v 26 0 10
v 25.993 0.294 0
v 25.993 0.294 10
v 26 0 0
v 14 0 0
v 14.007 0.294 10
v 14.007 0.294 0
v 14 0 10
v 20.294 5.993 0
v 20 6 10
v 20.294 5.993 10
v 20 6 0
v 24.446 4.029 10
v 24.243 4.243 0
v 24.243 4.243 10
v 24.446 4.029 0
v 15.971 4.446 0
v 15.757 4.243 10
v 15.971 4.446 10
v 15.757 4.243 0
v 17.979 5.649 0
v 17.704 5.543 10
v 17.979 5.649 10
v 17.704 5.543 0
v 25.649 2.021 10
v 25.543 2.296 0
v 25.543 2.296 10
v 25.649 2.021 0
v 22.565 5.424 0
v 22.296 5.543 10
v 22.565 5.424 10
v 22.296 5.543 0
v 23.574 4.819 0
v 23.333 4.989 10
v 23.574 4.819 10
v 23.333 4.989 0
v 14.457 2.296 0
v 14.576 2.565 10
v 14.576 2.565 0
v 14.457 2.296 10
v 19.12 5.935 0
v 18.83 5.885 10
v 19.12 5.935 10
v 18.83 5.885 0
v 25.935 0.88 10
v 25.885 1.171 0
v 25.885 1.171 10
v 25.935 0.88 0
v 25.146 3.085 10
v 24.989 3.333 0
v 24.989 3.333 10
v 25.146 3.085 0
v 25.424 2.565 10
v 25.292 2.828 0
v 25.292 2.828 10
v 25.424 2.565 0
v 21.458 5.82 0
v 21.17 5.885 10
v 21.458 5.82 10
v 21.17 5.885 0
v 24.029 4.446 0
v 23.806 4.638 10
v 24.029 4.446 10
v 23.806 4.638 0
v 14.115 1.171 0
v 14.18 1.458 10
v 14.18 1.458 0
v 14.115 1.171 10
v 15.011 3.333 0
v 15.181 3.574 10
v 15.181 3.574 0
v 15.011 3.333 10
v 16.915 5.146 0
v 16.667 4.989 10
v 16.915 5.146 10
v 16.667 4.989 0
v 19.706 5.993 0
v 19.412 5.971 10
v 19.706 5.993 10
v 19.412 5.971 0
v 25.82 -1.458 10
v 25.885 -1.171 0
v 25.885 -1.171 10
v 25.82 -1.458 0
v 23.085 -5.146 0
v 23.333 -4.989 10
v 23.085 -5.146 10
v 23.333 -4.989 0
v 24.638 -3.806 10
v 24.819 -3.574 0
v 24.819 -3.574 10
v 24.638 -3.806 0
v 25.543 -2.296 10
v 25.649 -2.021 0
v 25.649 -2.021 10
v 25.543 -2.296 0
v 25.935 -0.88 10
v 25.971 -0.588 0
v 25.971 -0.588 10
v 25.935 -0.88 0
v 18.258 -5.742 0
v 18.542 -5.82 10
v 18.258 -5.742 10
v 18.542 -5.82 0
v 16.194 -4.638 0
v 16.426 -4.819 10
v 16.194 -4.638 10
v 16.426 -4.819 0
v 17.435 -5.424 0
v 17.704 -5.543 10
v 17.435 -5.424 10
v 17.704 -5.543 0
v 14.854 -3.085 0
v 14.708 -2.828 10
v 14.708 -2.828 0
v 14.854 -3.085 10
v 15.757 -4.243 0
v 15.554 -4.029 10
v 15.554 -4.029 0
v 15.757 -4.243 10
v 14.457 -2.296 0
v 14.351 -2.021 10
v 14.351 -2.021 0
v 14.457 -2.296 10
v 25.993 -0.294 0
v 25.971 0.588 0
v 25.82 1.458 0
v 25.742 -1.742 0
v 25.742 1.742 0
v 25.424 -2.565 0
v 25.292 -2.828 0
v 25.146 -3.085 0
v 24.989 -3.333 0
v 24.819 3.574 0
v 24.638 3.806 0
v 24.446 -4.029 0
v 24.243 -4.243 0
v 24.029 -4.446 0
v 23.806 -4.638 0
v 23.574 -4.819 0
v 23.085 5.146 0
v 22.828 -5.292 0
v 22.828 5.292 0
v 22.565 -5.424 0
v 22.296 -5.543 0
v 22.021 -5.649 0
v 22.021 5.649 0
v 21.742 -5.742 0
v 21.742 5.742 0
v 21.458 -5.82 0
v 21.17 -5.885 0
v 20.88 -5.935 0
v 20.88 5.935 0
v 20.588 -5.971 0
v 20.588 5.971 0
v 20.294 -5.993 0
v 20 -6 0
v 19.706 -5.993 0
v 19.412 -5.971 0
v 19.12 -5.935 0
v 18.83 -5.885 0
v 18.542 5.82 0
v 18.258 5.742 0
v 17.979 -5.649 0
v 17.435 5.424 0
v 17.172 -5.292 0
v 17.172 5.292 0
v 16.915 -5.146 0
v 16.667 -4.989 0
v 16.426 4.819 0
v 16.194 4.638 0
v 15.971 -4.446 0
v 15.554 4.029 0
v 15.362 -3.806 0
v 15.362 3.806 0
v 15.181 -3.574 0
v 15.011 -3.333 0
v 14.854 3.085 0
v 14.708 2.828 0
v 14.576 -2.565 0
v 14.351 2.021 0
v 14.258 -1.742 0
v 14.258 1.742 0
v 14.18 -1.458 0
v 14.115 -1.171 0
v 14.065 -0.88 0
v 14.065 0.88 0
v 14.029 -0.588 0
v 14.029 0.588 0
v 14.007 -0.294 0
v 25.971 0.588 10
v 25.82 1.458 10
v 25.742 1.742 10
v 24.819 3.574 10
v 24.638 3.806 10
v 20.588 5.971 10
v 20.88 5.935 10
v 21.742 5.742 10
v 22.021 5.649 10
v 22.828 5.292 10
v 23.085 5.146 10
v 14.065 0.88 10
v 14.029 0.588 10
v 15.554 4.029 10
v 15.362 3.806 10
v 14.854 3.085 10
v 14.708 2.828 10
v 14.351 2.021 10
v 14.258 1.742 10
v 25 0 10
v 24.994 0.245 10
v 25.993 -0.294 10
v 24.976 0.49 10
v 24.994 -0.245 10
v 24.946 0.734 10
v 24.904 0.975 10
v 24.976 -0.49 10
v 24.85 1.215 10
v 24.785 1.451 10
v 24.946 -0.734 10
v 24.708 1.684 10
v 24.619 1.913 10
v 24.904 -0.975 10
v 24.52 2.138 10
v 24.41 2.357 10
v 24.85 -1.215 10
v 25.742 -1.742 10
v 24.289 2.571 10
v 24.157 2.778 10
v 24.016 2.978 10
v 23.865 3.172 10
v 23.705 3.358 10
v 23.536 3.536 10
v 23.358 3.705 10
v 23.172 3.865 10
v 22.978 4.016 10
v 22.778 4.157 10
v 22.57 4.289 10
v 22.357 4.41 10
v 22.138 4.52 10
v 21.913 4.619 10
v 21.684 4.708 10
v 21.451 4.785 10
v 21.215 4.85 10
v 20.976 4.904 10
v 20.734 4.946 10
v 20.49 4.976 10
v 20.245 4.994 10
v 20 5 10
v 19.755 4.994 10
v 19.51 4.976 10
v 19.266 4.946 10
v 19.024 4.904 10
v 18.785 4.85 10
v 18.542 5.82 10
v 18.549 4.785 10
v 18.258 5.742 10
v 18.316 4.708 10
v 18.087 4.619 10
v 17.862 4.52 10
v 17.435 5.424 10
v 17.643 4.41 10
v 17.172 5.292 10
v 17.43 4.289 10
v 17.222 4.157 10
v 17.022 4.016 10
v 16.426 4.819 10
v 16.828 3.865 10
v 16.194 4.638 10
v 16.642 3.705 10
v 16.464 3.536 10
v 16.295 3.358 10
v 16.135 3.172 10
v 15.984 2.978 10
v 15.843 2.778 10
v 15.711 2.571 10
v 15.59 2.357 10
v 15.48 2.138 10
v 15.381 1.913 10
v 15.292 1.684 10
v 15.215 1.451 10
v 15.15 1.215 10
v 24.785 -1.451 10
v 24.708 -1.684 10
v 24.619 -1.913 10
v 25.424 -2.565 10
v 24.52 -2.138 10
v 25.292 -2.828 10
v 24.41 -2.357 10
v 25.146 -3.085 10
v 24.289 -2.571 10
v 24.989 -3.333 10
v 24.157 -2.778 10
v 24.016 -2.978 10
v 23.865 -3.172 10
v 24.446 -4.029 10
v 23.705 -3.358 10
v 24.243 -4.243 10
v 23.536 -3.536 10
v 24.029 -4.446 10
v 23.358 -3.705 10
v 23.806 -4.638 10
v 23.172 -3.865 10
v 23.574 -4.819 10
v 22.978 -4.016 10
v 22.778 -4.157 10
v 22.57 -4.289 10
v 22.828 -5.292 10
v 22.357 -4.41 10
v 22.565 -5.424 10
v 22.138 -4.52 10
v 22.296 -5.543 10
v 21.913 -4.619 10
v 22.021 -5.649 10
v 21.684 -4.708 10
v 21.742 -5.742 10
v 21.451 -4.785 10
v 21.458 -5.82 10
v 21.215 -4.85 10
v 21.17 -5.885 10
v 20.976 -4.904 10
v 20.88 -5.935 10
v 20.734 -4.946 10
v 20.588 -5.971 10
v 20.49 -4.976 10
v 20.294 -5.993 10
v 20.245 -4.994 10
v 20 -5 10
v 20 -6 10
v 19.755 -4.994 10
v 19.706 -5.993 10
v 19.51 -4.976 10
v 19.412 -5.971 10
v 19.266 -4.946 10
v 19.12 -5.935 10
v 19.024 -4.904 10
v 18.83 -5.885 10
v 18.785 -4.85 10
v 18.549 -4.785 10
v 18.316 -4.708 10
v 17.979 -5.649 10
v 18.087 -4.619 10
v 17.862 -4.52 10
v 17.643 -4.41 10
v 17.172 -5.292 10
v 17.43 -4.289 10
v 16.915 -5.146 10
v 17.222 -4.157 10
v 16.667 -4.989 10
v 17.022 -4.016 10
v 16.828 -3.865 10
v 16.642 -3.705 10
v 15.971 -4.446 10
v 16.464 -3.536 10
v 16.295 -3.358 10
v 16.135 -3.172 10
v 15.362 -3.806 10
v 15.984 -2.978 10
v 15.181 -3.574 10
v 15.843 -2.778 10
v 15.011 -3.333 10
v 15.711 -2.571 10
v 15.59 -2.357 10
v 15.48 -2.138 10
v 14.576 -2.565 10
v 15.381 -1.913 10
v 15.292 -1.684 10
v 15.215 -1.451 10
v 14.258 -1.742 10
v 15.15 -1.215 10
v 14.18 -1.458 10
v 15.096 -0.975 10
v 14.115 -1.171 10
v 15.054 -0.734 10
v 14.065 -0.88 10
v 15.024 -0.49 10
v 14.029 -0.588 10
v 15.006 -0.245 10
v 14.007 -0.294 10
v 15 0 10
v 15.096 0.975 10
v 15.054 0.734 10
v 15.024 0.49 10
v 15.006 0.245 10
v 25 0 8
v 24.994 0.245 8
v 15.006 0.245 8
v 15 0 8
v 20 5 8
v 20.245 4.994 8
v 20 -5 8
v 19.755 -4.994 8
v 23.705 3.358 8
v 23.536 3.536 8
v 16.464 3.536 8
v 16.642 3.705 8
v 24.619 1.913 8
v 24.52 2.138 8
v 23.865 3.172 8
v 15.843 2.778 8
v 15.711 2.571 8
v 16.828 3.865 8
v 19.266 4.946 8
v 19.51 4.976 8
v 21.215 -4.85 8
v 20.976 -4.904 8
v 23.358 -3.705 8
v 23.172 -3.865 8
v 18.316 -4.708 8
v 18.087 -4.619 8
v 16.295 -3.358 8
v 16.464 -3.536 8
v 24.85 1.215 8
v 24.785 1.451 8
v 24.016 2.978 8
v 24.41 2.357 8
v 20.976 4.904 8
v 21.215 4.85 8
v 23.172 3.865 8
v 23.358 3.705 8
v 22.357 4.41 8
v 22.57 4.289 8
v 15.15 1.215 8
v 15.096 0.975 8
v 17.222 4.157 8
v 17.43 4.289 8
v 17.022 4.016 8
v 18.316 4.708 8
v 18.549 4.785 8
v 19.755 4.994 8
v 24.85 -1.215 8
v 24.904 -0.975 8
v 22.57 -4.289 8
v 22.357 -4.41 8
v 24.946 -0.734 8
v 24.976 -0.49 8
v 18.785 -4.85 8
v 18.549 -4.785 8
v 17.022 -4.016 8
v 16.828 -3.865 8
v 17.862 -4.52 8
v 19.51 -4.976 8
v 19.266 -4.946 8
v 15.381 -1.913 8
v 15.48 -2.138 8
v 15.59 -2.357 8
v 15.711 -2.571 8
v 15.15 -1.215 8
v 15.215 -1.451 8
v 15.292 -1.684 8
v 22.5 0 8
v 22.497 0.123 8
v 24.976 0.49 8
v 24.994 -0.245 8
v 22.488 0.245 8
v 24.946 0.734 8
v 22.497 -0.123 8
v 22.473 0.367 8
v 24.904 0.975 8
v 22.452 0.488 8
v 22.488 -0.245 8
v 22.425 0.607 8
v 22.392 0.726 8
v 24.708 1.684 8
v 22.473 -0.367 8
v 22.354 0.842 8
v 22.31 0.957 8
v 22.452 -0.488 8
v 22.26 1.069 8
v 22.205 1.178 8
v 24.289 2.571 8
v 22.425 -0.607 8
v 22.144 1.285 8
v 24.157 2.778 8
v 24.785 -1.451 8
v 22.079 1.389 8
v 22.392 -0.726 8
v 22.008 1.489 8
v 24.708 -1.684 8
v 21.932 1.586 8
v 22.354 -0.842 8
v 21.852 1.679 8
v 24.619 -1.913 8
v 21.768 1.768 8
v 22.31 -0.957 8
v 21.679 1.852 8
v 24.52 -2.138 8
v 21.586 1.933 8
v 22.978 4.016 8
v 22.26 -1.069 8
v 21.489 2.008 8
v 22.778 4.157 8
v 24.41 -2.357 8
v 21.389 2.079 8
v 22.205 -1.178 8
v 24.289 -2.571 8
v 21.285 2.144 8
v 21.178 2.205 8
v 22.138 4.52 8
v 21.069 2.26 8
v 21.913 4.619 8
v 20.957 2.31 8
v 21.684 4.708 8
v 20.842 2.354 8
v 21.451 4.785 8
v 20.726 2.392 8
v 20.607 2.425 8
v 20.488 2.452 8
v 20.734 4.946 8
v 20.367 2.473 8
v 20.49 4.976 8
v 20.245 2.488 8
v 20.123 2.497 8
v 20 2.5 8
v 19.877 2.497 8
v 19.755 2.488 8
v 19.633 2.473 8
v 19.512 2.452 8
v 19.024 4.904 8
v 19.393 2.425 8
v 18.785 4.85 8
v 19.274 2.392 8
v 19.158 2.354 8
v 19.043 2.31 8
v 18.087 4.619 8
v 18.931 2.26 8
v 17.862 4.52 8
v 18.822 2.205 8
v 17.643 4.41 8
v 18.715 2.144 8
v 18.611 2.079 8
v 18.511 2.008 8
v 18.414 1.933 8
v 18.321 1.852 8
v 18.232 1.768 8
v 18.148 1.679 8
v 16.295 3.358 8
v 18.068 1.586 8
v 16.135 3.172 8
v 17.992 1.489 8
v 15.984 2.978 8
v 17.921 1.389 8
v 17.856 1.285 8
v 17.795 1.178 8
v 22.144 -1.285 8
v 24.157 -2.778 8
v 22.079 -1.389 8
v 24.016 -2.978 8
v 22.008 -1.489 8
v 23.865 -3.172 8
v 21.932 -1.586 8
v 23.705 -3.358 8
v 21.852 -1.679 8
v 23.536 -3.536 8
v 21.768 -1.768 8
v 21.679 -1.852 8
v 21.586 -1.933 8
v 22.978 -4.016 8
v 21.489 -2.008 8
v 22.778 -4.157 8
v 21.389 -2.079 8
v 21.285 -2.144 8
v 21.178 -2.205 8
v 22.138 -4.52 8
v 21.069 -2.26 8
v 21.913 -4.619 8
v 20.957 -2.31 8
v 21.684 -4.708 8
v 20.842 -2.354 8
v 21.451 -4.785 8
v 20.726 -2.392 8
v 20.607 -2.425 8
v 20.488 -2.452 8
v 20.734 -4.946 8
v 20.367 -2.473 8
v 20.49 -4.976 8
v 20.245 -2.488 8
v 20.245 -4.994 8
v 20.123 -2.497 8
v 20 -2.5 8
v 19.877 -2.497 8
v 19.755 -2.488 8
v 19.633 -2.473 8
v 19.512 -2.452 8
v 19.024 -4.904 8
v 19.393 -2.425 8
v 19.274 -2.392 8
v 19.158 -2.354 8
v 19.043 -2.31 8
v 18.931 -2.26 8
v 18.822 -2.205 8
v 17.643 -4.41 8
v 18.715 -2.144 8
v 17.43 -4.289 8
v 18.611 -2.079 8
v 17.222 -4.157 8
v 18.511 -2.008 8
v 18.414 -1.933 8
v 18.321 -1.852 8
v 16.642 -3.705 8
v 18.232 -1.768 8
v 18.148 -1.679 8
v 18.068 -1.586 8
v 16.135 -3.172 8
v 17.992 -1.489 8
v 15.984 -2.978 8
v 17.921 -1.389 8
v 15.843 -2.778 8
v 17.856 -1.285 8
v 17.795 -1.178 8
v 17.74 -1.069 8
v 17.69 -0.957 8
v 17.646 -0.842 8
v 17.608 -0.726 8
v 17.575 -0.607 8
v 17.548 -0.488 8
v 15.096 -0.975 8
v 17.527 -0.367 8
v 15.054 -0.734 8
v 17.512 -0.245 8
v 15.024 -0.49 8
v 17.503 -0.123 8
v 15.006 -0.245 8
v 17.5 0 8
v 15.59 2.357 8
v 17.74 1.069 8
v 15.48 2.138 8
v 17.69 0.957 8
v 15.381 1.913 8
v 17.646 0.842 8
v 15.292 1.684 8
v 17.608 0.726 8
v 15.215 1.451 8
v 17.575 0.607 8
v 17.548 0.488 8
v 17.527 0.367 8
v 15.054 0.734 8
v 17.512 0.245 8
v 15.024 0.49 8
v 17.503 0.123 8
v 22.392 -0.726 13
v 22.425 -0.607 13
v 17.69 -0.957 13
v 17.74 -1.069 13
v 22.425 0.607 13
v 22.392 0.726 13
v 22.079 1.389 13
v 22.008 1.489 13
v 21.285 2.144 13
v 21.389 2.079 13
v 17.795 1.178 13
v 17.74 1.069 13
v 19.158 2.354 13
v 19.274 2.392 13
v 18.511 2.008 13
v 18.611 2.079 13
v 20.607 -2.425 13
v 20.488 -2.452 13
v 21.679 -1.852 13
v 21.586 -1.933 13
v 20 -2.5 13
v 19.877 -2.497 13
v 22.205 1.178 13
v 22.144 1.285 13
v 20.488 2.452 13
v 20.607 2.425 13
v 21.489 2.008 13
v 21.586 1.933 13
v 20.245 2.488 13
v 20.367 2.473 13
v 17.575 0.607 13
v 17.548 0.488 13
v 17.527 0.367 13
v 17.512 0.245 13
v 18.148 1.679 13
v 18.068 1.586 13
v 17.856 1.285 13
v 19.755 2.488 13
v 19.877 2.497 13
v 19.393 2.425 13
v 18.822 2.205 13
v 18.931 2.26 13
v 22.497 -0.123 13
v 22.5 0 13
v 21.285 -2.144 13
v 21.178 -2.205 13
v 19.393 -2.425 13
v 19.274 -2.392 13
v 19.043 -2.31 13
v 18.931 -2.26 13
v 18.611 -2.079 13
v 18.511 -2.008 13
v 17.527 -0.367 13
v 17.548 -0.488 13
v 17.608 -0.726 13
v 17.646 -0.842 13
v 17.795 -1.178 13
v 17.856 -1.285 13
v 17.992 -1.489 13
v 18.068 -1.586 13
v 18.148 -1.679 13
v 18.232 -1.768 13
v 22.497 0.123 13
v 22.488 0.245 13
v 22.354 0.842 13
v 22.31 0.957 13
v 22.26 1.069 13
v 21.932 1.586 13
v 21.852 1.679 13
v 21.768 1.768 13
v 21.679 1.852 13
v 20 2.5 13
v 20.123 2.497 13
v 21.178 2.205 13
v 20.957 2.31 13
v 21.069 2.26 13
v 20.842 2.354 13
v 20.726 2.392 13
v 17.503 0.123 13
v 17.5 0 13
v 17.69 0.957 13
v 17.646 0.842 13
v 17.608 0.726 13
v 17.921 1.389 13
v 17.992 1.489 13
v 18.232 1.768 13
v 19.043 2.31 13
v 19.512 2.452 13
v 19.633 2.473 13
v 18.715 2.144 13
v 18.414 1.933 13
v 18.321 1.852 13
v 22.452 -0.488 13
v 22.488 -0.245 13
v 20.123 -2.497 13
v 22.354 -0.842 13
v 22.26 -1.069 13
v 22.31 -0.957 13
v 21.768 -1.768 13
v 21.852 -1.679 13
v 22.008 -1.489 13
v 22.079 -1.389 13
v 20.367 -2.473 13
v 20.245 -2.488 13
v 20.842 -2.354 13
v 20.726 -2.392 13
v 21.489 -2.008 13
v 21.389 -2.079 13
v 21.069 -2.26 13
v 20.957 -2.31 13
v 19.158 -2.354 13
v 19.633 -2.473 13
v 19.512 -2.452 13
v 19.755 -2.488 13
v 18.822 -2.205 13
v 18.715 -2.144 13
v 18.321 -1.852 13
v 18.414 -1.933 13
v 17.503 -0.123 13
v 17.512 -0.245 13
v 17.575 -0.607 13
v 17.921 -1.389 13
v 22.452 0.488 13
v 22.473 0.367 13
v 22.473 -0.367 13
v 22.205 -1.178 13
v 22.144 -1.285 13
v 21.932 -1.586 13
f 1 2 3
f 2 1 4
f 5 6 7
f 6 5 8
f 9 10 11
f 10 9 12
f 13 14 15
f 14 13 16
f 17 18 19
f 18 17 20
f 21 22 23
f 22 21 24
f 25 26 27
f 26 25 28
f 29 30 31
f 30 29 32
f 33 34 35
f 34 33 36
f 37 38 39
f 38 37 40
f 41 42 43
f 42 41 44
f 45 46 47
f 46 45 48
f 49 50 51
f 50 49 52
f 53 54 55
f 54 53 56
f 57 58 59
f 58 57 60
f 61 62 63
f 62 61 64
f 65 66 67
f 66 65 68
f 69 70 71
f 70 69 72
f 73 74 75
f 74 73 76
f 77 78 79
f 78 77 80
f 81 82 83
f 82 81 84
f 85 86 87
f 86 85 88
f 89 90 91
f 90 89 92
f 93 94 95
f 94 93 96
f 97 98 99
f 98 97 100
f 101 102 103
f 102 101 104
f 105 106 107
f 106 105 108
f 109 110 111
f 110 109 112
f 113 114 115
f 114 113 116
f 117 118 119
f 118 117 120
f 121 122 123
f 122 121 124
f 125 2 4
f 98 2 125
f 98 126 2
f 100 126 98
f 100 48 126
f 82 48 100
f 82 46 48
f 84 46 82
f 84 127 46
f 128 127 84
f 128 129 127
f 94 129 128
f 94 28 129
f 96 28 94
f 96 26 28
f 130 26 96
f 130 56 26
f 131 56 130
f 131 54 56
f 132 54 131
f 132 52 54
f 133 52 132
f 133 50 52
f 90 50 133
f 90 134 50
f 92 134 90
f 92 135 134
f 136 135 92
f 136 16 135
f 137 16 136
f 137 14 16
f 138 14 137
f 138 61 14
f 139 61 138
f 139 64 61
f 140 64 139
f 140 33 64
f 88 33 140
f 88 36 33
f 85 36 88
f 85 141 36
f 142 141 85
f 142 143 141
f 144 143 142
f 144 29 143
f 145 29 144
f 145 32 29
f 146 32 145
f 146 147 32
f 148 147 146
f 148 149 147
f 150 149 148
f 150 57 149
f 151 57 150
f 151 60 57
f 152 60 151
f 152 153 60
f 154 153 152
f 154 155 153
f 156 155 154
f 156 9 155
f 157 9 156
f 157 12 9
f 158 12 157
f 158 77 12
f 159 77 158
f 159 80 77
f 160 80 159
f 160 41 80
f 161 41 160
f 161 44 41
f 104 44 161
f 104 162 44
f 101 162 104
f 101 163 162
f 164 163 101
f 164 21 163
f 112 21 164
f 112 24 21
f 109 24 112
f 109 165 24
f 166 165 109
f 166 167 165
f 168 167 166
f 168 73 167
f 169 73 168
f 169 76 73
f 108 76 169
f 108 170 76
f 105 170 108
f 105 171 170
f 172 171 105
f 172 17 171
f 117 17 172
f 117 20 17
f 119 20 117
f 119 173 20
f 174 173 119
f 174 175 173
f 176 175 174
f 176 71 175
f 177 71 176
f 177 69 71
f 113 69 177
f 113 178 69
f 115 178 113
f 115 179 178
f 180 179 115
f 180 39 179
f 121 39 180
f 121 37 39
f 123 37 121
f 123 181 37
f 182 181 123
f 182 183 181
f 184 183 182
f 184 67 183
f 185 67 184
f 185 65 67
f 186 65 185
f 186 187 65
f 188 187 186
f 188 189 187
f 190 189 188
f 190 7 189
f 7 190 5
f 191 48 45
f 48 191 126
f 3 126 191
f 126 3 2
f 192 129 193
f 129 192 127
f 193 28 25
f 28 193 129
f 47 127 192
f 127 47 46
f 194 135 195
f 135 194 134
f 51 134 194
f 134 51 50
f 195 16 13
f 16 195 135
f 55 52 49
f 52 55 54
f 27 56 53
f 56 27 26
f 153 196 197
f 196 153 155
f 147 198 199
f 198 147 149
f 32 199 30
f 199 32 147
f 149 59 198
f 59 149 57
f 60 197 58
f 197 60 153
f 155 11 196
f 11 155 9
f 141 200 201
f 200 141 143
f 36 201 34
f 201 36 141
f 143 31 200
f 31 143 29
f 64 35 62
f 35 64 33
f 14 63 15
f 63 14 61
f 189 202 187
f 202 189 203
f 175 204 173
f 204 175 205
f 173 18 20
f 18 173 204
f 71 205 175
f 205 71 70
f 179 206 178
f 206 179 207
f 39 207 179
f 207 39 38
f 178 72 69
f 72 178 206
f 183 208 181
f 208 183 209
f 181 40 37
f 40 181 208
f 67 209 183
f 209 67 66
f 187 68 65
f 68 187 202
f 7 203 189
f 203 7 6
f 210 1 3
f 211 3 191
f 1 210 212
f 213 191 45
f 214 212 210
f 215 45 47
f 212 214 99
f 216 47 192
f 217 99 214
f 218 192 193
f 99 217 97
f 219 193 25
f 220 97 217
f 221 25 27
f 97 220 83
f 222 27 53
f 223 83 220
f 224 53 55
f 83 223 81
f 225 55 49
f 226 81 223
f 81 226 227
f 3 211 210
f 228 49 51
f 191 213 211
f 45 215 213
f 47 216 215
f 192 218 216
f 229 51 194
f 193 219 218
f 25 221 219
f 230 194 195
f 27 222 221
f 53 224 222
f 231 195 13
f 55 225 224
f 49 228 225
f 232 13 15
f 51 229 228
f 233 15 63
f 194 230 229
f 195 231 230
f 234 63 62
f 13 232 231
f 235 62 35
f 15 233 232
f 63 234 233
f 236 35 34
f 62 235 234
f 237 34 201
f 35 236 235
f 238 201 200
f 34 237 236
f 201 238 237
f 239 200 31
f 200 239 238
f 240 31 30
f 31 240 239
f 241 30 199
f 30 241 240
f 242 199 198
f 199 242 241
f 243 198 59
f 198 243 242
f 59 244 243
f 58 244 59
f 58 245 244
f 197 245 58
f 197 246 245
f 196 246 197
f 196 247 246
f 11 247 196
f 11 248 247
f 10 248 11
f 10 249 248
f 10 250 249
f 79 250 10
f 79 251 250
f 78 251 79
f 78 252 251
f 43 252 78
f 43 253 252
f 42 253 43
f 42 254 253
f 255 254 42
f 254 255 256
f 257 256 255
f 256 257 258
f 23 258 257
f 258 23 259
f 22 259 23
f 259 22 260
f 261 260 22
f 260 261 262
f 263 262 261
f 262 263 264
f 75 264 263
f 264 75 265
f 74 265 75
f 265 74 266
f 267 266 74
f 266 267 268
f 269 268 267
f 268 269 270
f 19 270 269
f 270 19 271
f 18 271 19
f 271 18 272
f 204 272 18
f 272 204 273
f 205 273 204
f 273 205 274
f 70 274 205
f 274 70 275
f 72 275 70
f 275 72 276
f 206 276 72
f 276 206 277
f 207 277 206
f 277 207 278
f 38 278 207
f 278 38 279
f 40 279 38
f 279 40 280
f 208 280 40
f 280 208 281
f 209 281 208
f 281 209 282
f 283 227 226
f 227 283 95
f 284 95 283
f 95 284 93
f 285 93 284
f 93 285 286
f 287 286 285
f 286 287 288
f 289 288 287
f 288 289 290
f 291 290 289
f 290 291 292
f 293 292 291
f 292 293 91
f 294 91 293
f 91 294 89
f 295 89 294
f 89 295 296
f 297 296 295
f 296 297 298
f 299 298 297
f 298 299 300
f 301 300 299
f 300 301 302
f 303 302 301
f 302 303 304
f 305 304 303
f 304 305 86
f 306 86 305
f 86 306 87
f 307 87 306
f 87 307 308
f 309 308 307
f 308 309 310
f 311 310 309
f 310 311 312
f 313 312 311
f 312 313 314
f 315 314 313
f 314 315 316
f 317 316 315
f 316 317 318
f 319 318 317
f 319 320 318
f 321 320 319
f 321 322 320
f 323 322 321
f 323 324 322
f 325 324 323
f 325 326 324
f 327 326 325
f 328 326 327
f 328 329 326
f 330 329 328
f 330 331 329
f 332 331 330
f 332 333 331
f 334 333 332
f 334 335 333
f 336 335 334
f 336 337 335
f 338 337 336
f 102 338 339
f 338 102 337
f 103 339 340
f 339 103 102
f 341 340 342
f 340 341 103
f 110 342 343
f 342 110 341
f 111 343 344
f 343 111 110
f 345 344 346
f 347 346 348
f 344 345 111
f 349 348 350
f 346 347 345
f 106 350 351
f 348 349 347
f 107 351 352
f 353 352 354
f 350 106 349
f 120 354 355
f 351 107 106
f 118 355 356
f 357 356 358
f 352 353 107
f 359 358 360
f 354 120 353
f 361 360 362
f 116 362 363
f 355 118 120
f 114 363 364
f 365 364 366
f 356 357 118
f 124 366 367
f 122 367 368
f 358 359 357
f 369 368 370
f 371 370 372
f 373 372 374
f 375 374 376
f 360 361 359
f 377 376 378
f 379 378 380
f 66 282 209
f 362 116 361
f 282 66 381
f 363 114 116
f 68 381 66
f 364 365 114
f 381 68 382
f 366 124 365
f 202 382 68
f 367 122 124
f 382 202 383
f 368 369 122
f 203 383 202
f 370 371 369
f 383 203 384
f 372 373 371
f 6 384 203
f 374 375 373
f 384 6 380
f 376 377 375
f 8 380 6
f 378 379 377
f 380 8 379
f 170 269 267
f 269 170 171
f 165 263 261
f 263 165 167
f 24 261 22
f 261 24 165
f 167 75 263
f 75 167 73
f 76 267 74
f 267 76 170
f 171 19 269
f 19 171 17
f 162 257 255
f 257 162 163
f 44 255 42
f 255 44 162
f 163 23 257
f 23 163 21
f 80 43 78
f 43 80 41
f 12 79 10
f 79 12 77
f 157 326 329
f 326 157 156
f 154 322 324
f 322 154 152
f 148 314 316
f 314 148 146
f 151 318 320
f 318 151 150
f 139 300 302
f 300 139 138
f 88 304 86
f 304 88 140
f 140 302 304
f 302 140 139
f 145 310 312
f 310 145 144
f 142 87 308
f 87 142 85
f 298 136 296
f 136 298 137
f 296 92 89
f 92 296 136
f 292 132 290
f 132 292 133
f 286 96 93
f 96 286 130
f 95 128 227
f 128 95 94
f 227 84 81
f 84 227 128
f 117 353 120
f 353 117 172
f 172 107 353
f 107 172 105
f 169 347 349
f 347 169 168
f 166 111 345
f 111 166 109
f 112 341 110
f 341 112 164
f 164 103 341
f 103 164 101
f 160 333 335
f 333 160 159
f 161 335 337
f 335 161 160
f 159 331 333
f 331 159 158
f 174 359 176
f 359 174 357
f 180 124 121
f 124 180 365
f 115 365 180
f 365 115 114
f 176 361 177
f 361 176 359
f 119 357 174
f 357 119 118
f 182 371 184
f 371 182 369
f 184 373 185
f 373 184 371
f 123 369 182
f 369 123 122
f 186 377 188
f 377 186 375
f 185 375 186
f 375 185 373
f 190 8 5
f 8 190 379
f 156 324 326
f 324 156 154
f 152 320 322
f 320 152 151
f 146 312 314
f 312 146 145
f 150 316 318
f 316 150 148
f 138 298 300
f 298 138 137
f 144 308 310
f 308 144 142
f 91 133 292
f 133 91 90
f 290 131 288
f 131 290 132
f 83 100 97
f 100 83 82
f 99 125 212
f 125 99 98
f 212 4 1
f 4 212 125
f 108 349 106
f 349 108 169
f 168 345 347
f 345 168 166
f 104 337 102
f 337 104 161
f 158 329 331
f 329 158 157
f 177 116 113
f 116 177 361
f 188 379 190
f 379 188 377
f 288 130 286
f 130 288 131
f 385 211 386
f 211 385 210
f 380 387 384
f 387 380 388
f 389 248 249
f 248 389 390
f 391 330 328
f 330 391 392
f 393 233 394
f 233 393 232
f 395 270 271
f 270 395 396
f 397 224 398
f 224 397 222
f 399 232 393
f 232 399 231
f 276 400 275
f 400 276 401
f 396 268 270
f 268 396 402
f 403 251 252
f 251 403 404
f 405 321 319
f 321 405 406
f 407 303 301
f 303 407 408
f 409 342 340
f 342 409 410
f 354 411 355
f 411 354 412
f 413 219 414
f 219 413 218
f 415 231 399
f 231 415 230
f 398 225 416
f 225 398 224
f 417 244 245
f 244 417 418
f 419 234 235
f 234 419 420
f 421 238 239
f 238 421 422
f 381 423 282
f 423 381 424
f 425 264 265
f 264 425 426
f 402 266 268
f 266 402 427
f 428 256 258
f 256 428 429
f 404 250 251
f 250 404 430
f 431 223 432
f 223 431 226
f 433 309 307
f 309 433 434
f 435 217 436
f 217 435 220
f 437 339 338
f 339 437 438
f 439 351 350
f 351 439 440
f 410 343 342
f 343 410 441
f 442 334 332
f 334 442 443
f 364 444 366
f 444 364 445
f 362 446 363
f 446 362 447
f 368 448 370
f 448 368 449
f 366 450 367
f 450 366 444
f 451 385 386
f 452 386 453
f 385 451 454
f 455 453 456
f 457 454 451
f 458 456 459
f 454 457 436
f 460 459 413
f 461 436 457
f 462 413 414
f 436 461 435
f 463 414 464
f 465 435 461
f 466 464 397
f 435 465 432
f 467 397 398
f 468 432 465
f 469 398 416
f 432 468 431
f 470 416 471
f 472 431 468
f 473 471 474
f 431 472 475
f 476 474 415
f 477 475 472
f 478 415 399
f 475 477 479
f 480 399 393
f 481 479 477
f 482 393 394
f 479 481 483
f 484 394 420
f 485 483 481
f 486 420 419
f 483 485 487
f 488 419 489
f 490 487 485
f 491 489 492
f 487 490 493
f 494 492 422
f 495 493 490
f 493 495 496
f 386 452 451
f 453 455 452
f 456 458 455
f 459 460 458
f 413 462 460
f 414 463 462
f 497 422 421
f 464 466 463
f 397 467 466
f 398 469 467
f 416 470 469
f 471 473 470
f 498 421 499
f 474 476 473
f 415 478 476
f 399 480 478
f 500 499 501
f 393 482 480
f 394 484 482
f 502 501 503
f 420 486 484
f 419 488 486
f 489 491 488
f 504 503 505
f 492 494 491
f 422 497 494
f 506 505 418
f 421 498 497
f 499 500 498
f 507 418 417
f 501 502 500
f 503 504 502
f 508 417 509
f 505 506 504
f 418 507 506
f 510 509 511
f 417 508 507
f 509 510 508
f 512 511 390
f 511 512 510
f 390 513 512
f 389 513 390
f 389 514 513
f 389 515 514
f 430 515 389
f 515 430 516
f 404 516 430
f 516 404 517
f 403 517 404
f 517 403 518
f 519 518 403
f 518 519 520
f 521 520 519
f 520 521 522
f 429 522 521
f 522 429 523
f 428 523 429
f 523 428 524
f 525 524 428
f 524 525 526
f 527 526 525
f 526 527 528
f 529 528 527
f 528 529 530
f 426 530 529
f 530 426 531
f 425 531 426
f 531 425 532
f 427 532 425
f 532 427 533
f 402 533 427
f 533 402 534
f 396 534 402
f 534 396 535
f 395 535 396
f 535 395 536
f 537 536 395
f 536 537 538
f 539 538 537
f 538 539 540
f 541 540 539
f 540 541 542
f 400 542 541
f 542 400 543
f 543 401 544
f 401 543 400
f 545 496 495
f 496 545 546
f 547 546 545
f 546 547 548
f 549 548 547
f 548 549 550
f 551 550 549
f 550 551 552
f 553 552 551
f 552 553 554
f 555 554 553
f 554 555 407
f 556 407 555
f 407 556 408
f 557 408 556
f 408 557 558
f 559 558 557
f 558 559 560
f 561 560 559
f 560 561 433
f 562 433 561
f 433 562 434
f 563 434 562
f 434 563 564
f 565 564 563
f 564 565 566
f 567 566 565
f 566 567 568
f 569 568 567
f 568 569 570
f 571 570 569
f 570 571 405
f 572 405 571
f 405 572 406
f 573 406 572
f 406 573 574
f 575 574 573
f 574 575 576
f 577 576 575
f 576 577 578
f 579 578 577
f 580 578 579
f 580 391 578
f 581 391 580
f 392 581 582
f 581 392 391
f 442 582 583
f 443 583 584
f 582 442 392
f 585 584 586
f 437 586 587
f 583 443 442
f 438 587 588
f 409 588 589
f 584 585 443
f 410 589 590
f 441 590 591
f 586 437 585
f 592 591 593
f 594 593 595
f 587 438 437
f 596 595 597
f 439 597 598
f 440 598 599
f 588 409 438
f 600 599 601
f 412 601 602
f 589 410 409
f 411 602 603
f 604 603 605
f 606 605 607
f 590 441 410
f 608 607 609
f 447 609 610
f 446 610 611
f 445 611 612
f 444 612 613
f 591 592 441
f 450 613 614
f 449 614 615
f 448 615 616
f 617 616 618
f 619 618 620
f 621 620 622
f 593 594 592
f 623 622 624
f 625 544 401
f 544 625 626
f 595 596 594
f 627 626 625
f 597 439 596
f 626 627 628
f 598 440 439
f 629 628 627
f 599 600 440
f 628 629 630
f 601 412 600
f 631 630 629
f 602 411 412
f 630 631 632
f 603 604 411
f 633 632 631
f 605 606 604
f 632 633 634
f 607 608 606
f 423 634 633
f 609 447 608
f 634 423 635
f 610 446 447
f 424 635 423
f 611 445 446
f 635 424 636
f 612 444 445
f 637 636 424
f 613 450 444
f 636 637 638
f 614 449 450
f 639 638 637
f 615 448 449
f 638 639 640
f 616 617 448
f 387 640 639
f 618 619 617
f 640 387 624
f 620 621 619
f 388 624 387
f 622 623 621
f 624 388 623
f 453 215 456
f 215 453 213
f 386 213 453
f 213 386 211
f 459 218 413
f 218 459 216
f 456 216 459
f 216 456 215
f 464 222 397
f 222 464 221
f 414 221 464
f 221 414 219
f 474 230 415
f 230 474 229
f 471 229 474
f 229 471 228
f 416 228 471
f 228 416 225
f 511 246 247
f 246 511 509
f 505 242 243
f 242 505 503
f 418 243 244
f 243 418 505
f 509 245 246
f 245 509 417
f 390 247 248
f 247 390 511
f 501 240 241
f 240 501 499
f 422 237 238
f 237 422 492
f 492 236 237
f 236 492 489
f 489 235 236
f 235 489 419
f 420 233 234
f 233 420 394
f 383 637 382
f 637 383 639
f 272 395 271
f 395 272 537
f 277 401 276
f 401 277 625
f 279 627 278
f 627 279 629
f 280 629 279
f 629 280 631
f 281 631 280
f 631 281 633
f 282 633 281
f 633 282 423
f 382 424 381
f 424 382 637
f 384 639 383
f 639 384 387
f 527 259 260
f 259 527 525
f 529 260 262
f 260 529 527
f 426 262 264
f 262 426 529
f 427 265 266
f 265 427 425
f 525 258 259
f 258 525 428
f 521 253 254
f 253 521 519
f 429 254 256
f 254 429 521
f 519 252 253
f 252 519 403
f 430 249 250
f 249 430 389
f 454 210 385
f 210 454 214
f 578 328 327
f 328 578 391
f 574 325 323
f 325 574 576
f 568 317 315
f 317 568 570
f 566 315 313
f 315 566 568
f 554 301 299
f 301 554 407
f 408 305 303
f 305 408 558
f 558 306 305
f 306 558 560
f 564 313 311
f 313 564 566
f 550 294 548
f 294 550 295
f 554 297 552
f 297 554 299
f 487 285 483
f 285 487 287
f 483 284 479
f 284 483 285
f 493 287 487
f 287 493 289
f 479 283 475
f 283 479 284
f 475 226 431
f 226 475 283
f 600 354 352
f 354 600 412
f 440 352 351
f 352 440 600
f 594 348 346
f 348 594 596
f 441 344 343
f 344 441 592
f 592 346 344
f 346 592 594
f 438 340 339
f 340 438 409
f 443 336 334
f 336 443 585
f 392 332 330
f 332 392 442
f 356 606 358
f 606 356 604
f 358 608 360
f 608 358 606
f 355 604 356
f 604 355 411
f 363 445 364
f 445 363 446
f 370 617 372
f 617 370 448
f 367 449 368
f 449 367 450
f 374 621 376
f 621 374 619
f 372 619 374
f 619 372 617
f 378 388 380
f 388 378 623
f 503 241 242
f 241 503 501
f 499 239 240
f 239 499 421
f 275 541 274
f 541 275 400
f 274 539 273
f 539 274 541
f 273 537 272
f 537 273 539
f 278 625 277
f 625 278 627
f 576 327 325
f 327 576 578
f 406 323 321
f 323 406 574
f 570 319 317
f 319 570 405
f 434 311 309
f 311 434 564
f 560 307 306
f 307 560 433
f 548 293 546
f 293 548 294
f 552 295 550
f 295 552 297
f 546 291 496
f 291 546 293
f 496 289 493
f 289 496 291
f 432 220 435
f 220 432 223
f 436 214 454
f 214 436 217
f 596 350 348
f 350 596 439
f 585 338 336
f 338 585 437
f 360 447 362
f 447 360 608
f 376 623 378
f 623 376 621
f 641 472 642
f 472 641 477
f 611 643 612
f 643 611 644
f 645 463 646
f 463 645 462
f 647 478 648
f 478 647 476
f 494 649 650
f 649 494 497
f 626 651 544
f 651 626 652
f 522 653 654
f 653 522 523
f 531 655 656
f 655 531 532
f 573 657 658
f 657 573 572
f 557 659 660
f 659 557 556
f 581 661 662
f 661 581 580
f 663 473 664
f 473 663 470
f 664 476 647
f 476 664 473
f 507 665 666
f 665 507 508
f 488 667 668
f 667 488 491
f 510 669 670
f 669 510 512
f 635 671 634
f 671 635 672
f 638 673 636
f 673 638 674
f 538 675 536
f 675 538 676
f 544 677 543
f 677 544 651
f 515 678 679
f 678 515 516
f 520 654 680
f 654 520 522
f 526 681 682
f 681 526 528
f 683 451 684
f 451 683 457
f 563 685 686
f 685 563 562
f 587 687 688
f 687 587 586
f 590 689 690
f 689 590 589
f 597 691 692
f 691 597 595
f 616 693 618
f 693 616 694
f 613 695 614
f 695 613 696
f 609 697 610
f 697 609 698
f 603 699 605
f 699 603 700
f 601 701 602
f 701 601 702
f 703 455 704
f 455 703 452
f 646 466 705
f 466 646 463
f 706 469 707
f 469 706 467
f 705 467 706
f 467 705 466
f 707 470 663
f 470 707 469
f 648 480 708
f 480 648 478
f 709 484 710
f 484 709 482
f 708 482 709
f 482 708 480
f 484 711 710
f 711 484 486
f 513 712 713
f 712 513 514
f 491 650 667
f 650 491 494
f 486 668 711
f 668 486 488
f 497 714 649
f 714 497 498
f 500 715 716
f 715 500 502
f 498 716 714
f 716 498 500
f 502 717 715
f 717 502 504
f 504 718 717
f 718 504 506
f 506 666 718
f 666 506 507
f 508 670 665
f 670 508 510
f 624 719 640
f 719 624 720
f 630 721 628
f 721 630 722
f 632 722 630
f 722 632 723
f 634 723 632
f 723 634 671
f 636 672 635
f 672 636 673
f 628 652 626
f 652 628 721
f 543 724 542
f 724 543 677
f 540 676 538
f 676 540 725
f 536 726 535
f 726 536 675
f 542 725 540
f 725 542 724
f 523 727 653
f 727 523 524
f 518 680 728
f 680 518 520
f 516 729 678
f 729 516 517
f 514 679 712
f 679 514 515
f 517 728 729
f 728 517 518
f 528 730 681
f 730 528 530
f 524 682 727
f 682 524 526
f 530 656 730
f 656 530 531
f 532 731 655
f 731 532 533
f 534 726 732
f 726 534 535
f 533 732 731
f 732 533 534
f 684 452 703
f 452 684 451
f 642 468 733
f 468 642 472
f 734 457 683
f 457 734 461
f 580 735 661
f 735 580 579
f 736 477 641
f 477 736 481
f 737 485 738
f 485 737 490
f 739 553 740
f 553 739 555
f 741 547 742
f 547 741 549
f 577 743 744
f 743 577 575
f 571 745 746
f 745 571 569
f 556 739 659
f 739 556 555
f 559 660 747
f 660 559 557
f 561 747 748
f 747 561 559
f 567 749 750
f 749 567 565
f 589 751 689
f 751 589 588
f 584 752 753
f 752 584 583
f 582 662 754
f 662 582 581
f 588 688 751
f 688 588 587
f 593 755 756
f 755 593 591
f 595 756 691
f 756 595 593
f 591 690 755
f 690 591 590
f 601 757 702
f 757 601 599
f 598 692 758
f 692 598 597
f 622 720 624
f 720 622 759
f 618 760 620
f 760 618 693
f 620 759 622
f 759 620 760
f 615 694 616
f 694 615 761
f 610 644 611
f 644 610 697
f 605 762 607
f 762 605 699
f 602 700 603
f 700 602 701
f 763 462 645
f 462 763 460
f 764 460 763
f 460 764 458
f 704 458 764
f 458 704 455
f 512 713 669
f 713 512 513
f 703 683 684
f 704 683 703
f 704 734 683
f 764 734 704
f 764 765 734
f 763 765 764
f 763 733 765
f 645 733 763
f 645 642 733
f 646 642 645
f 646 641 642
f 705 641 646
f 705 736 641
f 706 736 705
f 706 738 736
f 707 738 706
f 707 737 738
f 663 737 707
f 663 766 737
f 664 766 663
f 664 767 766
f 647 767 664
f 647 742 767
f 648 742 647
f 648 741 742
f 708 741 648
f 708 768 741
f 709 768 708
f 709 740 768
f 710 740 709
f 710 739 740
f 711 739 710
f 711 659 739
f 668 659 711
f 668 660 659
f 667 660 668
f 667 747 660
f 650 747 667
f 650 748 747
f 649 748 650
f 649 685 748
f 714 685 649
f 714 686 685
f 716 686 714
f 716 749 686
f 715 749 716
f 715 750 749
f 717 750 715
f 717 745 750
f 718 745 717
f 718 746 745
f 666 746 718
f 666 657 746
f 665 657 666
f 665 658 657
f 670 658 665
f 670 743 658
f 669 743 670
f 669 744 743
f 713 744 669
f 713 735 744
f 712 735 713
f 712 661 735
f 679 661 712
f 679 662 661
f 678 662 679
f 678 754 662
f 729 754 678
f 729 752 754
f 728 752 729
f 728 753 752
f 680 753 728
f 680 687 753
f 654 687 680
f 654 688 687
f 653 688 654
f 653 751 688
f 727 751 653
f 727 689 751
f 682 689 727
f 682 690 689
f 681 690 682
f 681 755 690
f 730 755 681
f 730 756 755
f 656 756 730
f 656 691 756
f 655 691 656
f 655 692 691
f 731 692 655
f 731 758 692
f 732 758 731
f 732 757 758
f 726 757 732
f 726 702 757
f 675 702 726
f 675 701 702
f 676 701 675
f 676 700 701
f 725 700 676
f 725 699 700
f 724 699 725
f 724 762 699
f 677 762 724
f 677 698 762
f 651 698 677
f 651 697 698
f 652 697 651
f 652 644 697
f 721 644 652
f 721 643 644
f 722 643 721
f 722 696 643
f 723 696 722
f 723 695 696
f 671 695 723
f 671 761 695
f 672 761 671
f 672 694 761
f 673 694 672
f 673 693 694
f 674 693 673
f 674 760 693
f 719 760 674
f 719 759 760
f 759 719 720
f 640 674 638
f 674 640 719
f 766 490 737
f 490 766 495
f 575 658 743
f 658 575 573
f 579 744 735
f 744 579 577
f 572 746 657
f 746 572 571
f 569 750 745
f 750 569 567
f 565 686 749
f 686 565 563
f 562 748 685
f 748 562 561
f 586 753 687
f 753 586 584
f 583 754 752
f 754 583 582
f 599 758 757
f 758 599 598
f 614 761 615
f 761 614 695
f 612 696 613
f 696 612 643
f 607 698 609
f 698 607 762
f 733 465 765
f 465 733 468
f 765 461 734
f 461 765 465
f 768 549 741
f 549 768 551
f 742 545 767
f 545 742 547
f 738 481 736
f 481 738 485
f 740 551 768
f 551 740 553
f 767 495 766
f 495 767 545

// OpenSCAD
$fn=128;
eps = 0.01;


module pull_tool() {
  d1 = 22;
  d2 = 16;
  l = 10;

  difference() {
    cylinder(d=d1, h=l); 
    translate([0, 0, -eps]) cylinder(d=d2, h=l+2*eps);  
  }
}

module push_tool() {
  d1 = 12;
  d2 = 5;
  l1 = 10;
  l2 = 3;

  difference() {
    cylinder(d=d1, h=l1); 
    translate([0, 0, l1-2]) cylinder(d=10, h=2+eps);
  }
  cylinder(d=d2, h=l1+l2); 


}


//pull_tool();

translate([20, 0, 0]) push_tool();
